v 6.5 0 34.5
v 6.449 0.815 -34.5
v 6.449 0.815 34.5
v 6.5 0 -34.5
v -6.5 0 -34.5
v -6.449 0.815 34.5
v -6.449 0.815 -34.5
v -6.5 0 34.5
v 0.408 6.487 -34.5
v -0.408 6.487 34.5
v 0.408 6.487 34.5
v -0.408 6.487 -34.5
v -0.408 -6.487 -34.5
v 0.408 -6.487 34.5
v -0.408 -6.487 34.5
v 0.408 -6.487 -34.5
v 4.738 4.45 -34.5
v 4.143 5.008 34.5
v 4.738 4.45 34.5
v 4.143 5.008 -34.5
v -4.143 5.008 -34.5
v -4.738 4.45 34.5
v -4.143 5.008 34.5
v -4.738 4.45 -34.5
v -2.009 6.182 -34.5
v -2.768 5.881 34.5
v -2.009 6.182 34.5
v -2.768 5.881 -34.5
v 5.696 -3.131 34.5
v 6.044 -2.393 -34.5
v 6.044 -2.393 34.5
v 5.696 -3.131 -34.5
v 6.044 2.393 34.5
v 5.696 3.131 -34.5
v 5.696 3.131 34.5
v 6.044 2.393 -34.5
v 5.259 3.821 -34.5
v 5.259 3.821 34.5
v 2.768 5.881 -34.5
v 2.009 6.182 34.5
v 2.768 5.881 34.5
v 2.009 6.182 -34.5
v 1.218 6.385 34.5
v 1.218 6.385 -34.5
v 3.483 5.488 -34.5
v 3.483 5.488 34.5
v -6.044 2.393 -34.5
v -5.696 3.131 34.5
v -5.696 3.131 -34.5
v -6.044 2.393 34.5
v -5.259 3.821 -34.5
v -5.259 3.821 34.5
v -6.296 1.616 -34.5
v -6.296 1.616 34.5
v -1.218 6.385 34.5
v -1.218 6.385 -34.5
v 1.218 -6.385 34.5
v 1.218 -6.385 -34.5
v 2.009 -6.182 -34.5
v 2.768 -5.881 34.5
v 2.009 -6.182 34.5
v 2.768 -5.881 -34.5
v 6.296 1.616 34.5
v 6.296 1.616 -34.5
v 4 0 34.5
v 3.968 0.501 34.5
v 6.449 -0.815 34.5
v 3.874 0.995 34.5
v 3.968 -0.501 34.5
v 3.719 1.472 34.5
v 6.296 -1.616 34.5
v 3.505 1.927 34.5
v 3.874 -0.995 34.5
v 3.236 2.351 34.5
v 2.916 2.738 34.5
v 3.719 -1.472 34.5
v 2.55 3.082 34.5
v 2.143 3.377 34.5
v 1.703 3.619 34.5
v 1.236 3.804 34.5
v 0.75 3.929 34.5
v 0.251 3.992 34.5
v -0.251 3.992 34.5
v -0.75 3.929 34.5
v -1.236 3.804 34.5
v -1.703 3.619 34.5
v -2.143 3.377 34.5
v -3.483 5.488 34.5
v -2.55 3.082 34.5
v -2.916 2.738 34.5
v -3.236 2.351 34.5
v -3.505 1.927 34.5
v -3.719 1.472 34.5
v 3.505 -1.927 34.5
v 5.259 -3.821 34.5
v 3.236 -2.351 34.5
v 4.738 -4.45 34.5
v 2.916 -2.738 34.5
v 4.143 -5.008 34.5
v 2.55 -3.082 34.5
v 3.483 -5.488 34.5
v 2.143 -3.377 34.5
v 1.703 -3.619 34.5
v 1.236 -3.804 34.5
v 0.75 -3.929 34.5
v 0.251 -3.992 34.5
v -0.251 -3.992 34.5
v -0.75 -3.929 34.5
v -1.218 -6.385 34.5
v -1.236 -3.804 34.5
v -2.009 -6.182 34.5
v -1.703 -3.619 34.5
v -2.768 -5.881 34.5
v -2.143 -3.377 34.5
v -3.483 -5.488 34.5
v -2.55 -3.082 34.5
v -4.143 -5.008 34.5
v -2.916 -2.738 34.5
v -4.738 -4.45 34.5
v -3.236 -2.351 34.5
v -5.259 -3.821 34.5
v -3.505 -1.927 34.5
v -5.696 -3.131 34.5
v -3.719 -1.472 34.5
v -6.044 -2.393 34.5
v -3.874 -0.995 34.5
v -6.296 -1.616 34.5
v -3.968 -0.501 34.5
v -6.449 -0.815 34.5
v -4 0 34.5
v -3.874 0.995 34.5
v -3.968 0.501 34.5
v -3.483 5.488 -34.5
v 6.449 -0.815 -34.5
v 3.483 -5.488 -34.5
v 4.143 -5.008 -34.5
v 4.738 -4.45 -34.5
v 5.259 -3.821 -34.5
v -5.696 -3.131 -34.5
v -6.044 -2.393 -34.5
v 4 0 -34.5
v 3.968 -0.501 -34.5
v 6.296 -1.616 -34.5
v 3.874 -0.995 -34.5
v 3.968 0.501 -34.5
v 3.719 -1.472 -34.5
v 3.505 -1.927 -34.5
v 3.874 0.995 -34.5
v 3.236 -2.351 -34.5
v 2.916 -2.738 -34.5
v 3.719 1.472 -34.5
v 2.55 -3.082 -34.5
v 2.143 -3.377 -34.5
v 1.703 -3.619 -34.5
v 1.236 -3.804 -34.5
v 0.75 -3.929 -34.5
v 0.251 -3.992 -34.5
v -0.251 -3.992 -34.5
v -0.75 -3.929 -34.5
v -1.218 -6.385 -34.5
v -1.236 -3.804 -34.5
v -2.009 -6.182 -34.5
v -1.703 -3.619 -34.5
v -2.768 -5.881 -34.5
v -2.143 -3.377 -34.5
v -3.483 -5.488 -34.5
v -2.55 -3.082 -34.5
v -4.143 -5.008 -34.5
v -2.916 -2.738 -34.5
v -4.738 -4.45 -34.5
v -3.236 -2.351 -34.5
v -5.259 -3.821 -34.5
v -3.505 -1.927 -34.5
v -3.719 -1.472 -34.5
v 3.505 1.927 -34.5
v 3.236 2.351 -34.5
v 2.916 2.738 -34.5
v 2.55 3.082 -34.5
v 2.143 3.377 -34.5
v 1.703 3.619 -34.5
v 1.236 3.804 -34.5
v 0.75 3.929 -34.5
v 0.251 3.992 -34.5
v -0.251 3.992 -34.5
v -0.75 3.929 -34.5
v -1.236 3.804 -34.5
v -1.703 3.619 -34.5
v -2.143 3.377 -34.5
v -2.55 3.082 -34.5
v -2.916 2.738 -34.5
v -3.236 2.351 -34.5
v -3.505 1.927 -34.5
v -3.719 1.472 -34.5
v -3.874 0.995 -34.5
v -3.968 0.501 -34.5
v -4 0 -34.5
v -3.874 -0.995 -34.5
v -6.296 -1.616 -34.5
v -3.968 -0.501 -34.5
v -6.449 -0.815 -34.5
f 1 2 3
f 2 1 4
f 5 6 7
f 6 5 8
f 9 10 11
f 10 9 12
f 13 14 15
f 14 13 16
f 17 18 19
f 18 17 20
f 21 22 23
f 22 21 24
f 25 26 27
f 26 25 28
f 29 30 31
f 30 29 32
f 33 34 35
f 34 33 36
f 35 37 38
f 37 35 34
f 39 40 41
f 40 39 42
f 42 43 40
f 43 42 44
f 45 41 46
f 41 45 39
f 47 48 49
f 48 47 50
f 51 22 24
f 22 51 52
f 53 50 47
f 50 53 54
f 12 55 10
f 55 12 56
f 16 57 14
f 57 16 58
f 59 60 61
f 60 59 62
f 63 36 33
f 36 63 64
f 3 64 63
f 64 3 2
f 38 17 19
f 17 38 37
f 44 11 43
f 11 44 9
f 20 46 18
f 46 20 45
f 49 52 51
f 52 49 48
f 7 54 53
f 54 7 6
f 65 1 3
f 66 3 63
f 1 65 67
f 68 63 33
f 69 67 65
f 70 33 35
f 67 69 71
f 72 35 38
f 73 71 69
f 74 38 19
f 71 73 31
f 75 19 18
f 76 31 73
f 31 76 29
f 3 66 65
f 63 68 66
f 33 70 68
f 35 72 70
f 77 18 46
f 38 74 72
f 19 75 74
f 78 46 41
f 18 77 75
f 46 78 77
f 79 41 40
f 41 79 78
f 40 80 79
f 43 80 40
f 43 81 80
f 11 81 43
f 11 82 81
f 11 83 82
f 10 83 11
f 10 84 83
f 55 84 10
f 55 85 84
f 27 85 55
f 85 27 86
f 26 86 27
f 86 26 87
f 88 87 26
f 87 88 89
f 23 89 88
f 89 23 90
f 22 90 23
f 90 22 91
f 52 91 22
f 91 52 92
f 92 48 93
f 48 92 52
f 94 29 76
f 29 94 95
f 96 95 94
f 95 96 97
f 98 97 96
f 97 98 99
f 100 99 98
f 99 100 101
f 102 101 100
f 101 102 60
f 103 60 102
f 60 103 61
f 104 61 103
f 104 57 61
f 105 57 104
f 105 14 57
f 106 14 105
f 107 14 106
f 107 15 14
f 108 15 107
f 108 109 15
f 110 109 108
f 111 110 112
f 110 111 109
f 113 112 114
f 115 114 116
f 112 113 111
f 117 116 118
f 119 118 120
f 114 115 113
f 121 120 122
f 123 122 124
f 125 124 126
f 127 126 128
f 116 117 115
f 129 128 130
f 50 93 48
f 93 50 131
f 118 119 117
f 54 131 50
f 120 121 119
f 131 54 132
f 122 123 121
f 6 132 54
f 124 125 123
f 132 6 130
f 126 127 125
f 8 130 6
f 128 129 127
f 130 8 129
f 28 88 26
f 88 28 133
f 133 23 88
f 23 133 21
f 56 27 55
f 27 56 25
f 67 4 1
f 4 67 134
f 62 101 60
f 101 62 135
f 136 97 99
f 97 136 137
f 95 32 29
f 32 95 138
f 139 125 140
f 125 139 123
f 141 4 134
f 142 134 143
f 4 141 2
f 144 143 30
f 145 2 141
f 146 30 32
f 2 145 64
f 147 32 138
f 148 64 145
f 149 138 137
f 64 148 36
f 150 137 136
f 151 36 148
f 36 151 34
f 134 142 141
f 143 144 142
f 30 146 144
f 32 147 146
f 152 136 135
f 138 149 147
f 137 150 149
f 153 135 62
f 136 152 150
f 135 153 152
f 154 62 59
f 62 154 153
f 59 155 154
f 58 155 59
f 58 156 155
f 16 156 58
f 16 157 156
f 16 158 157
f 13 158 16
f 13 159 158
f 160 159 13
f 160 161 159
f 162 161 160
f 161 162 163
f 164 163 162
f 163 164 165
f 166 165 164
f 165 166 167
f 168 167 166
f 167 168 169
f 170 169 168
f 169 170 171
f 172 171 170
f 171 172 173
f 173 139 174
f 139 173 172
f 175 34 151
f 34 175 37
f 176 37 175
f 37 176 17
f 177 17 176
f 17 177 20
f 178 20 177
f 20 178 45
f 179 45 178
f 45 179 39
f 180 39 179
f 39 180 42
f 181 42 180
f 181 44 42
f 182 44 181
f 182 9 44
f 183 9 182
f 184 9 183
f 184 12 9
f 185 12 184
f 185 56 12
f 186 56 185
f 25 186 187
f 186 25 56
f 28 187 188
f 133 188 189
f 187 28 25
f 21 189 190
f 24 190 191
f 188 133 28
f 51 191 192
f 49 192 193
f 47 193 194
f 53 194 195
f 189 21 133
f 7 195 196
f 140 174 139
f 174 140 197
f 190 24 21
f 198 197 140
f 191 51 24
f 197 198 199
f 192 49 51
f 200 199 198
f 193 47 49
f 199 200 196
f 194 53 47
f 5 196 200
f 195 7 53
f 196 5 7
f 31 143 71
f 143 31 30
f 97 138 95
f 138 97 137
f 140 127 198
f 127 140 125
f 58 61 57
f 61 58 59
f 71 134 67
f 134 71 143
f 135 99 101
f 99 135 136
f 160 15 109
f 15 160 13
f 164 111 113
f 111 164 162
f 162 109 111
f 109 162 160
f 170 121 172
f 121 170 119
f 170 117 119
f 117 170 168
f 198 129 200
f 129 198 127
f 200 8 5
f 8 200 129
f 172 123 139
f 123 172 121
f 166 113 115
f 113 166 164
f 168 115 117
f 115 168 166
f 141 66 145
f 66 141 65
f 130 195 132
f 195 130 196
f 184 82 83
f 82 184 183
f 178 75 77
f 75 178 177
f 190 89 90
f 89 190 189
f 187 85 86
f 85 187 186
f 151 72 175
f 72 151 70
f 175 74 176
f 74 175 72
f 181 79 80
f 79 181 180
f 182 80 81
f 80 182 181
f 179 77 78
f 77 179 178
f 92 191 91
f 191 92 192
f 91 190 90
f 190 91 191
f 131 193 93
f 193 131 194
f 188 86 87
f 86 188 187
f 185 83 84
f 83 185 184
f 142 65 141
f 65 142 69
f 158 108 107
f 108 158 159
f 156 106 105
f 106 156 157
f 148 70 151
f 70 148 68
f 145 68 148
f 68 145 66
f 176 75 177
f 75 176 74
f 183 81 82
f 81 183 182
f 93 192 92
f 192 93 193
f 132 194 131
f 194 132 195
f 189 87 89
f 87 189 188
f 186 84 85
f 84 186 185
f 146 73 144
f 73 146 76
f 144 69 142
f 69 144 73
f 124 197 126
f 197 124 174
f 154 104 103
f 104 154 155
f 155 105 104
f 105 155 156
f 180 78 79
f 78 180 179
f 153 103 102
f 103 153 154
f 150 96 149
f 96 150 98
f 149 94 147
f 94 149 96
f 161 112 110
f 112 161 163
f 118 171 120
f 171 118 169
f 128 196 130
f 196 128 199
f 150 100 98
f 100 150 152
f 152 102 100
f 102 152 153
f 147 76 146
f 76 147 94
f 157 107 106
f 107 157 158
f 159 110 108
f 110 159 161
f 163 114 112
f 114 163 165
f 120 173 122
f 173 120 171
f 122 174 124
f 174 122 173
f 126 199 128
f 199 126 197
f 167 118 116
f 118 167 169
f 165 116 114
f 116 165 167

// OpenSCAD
$fn = 50;


difference() {
	union() {
		translate(v = [0, 0, -34.5000000000]) {
			cylinder(h = 69, r = 6.5000000000);
		}
	}
	union() {
		translate(v = [0, 0, -100.0000000000]) {
			cylinder(h = 200, r = 4);
		}
	}
}
